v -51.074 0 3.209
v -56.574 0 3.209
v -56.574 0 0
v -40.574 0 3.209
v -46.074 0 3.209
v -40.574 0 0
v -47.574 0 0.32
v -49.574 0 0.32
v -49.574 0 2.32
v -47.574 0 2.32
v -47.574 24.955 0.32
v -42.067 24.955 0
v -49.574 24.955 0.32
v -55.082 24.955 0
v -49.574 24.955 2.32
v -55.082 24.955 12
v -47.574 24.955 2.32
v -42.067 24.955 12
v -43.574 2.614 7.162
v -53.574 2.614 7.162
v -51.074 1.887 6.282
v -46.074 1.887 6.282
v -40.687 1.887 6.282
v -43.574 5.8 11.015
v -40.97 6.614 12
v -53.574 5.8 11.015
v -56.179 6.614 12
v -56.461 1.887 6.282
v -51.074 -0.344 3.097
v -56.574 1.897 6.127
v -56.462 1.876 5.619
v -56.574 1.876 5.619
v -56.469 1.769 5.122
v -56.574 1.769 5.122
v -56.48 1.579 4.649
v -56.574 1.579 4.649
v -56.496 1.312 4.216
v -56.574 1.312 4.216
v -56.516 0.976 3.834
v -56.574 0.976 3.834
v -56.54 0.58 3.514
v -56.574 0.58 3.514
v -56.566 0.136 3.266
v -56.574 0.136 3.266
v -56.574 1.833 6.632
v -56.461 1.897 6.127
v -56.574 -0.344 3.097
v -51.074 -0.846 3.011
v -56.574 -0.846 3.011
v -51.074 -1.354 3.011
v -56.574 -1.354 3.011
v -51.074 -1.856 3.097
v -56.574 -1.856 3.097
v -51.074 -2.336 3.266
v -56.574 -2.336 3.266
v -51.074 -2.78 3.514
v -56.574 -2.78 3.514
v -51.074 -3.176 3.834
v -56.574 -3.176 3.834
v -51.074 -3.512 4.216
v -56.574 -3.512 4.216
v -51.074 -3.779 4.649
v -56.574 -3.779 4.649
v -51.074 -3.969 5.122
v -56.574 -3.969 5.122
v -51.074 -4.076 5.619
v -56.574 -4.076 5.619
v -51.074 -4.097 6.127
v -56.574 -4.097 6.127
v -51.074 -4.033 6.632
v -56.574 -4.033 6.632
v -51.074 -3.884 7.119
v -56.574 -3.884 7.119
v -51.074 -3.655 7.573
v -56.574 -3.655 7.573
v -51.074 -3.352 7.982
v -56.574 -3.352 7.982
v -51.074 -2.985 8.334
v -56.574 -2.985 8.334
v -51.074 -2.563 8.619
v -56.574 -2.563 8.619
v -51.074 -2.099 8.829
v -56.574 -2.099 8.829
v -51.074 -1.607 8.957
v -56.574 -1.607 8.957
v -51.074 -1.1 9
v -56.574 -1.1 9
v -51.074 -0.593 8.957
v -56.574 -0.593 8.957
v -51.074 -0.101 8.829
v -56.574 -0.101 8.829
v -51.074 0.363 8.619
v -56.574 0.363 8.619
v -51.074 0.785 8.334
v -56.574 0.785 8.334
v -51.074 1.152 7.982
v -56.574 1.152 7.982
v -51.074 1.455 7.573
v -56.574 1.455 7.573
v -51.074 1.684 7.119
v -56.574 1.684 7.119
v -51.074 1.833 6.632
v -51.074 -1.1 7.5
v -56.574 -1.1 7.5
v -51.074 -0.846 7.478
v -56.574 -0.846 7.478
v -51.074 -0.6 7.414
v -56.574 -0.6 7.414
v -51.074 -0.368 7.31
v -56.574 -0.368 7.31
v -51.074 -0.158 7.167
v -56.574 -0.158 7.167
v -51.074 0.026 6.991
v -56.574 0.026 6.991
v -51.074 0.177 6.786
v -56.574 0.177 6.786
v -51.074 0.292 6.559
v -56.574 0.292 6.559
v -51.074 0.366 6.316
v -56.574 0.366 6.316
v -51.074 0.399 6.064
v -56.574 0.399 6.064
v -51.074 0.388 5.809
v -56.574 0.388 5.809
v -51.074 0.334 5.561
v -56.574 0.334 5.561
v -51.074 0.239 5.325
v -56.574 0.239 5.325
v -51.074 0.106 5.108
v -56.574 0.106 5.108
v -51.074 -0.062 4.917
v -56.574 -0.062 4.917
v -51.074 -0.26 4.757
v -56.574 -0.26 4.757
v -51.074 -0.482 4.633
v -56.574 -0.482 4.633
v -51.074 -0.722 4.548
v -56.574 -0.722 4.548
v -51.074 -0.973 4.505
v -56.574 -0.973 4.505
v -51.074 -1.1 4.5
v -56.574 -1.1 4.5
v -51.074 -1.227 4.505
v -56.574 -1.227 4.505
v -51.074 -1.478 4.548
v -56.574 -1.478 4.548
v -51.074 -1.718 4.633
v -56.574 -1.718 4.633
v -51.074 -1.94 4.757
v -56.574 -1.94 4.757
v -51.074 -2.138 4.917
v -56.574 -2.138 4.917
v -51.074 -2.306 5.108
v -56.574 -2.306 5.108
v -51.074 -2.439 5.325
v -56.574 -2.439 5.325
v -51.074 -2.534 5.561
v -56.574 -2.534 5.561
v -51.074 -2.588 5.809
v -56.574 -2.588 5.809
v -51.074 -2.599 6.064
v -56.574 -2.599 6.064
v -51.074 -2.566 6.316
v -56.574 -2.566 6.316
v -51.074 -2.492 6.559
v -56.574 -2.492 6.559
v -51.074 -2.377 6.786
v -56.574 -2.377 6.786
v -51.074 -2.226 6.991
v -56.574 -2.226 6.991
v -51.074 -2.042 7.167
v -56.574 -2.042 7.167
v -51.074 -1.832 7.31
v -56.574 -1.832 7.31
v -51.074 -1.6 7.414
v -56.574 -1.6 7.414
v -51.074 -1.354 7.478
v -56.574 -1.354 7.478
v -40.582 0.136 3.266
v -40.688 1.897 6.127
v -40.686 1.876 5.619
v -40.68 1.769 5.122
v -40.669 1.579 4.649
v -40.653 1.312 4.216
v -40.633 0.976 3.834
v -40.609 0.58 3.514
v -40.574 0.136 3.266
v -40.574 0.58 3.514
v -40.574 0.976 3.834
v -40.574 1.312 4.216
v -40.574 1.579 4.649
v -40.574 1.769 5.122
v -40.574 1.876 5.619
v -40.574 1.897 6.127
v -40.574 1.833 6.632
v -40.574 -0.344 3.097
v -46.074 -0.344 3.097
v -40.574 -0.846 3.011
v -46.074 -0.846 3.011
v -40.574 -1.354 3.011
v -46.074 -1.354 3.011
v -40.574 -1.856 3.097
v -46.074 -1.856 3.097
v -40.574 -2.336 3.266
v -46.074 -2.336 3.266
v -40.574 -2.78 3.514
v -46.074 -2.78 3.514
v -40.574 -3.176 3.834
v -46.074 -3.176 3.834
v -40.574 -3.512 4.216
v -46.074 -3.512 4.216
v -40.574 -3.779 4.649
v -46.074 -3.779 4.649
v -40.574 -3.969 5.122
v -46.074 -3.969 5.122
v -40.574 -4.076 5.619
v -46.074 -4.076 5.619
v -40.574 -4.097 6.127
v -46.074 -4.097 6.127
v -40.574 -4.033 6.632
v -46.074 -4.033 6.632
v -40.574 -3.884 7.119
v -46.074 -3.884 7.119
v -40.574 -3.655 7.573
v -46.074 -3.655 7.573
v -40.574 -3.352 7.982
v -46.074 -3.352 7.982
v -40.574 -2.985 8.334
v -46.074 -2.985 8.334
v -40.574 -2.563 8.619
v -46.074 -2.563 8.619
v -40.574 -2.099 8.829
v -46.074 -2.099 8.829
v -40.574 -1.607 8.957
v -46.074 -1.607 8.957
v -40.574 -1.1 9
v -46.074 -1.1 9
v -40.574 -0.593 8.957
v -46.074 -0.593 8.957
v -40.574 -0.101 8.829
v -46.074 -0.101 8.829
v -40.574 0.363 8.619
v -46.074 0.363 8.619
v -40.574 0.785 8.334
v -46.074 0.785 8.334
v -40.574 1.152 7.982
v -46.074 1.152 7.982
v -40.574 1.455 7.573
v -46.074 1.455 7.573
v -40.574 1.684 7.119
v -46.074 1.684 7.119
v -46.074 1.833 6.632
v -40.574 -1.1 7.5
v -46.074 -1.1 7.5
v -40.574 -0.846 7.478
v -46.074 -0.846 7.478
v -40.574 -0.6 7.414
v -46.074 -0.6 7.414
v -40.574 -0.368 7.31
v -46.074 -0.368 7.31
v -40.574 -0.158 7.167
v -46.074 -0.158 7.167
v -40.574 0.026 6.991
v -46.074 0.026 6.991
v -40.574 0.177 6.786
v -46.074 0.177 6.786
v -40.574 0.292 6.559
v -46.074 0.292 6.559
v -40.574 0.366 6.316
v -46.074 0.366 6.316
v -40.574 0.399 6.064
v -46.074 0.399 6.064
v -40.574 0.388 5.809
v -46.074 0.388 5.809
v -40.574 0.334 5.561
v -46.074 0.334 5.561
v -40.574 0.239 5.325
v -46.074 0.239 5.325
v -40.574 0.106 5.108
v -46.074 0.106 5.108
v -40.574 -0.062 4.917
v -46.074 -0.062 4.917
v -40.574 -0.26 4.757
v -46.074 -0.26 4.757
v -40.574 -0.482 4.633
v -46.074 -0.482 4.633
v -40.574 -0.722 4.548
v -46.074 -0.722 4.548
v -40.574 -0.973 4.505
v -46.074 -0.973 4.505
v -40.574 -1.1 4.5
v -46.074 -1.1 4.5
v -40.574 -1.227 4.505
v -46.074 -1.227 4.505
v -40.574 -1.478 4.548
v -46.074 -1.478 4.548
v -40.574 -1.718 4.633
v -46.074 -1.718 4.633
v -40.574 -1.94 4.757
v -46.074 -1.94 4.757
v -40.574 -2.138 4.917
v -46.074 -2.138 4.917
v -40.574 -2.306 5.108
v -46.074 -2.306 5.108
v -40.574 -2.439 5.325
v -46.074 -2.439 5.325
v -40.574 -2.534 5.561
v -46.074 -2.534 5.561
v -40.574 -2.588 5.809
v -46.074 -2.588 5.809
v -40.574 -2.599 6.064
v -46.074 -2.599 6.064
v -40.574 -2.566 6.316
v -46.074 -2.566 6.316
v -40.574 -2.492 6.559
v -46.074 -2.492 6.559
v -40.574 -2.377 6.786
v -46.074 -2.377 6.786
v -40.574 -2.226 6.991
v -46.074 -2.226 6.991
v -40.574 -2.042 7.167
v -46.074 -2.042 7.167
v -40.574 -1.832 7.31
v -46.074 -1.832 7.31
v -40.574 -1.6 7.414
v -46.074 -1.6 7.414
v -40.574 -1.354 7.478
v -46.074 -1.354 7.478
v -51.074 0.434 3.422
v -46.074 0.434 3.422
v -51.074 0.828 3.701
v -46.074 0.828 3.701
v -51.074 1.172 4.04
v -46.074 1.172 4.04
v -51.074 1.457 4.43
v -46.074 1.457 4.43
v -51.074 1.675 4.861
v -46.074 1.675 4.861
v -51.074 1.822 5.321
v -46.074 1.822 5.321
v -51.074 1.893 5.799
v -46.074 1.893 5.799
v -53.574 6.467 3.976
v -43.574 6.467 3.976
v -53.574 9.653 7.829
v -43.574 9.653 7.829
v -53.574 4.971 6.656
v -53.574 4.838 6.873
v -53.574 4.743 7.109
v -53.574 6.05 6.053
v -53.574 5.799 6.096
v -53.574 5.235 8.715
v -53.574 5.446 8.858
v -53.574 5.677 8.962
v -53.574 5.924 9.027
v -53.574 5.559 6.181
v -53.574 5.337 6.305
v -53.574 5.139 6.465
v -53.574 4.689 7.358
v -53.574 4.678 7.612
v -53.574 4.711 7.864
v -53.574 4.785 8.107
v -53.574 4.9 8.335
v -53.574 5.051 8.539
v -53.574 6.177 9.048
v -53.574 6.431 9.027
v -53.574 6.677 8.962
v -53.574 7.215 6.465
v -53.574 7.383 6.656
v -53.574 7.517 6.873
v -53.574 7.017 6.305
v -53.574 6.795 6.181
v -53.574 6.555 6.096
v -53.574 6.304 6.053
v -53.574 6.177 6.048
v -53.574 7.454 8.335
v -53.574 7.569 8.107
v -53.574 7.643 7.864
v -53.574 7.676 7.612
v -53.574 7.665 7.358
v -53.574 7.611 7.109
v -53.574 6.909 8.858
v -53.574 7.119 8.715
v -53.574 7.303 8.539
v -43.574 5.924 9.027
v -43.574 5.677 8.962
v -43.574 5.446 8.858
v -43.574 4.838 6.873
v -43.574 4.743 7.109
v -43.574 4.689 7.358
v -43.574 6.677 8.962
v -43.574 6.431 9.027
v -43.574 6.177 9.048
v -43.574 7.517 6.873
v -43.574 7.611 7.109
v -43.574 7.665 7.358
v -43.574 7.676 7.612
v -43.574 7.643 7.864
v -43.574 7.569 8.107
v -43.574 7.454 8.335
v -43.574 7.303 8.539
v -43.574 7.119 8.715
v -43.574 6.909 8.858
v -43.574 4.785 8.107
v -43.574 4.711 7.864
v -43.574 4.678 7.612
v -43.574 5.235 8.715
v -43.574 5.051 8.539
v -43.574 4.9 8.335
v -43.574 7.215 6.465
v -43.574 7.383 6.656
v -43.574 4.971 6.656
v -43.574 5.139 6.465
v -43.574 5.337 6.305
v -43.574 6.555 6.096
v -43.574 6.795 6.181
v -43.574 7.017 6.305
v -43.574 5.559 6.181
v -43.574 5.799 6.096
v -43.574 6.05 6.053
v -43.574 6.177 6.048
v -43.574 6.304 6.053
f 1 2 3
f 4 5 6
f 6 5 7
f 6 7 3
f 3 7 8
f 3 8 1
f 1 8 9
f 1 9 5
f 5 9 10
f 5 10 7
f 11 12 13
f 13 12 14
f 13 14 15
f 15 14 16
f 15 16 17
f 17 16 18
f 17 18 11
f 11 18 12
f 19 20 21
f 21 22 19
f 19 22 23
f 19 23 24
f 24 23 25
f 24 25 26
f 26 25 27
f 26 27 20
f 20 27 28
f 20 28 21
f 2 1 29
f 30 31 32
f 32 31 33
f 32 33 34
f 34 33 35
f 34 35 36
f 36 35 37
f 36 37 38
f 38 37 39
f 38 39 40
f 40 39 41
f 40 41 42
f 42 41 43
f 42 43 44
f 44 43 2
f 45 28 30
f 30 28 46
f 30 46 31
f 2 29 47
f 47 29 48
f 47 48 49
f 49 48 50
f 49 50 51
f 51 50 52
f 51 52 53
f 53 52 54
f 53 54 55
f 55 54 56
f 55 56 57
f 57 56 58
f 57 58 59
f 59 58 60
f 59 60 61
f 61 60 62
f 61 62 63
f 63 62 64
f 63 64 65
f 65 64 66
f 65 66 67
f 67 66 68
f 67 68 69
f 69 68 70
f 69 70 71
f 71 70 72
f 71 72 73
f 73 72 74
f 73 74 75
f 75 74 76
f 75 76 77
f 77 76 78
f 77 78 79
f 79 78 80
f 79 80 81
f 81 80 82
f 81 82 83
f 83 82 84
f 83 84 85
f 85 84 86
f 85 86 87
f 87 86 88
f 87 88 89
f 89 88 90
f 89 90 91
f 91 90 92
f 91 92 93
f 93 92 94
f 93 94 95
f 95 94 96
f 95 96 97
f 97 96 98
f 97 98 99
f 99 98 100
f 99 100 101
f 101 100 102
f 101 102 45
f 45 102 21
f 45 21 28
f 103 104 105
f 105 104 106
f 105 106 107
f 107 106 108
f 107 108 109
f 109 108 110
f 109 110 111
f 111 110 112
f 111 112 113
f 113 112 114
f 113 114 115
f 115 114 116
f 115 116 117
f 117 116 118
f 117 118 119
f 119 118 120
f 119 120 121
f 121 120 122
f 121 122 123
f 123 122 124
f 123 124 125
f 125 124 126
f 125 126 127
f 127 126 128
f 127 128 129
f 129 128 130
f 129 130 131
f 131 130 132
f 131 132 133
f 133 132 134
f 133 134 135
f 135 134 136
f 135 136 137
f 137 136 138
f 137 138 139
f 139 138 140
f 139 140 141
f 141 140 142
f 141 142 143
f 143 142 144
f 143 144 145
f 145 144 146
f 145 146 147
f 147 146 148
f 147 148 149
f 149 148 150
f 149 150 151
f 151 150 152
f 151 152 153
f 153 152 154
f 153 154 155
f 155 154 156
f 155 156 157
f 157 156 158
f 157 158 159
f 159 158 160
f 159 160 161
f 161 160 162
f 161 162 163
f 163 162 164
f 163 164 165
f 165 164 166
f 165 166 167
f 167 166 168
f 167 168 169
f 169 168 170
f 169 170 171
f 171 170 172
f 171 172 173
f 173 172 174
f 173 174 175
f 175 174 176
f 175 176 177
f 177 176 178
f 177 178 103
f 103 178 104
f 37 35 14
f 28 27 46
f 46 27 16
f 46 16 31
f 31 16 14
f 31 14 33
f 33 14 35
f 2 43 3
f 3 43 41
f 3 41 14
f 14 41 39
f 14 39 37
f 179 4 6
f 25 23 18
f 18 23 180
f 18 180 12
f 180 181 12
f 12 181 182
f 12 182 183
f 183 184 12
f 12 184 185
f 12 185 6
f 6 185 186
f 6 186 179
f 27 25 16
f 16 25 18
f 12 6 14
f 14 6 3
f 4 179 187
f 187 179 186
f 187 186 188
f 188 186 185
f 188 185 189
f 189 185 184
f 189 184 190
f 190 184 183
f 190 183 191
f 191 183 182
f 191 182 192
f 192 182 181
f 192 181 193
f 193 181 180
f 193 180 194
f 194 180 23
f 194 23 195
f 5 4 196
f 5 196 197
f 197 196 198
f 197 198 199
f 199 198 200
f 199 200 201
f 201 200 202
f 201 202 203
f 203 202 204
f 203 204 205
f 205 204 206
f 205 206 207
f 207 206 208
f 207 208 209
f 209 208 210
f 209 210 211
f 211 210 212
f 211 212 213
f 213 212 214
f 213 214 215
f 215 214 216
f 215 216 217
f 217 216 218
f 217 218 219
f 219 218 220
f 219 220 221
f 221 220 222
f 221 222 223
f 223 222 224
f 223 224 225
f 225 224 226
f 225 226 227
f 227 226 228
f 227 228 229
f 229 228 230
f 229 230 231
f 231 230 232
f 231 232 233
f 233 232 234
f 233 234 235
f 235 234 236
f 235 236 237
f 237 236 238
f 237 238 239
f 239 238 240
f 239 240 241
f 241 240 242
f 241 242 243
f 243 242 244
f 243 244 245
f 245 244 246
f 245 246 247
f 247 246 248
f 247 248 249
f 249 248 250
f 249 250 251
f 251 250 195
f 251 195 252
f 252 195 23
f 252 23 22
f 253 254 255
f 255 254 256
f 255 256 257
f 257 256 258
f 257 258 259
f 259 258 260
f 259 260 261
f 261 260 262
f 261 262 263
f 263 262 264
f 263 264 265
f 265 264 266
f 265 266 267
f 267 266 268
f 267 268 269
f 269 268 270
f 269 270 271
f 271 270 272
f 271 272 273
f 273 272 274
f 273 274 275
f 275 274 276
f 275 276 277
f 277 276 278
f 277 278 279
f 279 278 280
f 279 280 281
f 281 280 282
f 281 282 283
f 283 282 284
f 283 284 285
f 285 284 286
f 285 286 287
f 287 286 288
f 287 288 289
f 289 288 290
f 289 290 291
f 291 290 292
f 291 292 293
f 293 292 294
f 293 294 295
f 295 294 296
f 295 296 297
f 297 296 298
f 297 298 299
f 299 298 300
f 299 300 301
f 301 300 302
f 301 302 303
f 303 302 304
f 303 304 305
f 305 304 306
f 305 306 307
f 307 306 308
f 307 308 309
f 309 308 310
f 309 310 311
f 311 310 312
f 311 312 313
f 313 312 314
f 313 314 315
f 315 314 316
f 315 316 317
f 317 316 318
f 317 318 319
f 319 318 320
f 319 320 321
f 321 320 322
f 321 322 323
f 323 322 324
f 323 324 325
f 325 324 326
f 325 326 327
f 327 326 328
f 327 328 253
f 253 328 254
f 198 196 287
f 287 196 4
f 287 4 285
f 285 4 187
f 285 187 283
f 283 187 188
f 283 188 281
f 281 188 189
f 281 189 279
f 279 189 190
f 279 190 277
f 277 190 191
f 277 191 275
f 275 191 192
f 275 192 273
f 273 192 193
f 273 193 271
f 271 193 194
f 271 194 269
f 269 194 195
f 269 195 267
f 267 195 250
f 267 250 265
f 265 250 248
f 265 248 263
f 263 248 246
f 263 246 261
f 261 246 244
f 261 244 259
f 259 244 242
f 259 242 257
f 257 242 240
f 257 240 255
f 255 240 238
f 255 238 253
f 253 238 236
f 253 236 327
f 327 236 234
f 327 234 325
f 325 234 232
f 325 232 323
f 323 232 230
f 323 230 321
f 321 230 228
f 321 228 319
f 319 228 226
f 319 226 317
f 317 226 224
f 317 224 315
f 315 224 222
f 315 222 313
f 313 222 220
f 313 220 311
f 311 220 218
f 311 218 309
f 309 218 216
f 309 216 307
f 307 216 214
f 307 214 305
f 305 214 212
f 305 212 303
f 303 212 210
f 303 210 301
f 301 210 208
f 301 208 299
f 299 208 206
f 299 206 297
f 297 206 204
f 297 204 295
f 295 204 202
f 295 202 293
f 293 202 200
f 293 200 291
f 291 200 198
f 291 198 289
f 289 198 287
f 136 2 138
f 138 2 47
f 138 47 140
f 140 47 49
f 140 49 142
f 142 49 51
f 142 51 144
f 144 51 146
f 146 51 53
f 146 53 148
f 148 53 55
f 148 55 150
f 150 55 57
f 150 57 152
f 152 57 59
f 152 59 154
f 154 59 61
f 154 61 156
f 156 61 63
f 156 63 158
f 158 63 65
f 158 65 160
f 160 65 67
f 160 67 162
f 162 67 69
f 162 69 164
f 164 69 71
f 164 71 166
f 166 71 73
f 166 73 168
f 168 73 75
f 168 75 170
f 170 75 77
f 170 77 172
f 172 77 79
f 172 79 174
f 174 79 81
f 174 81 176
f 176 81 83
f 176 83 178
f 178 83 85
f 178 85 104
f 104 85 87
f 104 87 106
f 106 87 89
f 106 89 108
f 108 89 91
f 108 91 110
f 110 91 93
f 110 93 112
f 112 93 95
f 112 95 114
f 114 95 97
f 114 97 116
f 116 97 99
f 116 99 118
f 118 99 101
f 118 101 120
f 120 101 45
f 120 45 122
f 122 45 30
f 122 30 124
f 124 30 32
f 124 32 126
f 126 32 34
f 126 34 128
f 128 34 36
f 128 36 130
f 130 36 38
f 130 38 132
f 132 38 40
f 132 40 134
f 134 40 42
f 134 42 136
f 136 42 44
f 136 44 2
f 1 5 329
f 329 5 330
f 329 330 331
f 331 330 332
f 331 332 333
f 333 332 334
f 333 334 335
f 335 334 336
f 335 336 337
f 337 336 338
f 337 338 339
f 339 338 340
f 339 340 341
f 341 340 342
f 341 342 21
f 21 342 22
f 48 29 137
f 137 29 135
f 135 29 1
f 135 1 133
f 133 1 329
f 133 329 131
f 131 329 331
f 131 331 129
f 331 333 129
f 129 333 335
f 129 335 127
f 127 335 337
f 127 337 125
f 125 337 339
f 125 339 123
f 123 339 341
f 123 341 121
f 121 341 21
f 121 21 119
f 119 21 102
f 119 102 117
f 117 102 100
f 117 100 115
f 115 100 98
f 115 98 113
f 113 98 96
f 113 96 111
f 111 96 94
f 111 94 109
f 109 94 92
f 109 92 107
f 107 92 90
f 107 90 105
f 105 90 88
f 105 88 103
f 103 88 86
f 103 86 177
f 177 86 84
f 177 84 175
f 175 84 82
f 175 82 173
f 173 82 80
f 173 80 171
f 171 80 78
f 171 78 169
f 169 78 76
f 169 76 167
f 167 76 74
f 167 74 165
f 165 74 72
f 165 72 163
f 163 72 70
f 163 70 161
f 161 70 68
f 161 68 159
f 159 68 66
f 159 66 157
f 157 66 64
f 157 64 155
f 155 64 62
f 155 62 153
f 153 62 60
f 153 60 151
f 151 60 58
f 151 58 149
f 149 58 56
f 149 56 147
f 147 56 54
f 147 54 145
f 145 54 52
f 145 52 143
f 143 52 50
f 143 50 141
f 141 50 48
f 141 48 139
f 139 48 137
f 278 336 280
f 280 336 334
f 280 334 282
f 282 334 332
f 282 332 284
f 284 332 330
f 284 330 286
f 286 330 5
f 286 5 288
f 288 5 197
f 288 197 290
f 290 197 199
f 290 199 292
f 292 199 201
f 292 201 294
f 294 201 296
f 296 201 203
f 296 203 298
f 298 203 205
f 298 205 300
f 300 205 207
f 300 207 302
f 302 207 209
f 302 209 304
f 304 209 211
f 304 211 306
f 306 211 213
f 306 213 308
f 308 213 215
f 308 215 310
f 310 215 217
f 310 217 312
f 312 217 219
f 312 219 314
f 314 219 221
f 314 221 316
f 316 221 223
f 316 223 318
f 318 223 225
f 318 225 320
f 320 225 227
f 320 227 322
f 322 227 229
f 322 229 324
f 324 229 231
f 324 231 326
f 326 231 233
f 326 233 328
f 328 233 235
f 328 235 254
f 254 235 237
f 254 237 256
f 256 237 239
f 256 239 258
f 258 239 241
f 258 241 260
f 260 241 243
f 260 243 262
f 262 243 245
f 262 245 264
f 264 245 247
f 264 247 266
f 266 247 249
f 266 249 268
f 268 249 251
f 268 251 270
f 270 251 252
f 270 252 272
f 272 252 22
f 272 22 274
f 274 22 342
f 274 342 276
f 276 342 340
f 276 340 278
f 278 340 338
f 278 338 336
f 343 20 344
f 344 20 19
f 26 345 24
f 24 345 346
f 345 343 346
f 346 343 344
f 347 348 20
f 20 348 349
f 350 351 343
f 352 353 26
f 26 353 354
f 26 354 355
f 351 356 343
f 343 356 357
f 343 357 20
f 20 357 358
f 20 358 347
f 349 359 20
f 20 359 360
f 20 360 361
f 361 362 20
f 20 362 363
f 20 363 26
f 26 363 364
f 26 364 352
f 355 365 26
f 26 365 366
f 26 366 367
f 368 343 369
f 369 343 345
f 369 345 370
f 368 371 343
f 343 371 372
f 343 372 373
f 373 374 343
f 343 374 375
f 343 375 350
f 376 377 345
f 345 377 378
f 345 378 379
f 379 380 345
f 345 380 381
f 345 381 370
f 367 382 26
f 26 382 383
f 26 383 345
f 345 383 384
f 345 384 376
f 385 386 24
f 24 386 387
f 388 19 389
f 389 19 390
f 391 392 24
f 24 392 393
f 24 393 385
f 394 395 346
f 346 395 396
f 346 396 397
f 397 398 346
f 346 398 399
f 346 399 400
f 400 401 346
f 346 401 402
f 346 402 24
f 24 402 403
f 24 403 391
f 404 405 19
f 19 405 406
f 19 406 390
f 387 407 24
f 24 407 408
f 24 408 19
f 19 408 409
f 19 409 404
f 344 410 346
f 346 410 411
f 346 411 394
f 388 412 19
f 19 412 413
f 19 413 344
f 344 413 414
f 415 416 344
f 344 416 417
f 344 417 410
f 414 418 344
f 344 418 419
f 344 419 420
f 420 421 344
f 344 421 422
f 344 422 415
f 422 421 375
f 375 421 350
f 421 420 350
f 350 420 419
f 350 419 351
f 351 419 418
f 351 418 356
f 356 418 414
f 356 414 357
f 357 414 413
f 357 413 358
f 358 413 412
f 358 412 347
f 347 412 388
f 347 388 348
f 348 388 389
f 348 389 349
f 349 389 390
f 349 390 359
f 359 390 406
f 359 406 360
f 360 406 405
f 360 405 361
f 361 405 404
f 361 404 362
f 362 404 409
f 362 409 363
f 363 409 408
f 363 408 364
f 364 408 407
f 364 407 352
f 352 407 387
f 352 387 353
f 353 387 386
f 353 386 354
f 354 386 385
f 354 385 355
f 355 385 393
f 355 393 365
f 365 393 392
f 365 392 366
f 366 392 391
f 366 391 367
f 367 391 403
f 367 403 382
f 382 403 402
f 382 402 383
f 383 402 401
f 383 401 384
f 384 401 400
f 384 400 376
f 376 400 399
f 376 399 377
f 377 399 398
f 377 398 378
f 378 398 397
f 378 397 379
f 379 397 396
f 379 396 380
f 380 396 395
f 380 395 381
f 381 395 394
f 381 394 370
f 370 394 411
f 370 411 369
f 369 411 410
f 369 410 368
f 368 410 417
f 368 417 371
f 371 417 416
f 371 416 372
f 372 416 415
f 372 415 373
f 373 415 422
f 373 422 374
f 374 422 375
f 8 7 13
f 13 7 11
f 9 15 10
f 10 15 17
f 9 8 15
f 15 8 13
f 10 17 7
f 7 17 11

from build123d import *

# Parameters (mm, degrees)
BOSS_EXTRUDE1_DEPTH     = 12
CUT_EXTRUDE1_DEPTH      = 35.611065794
CUT_EXTRUDE1_DEPTH_BACK = 35.611065794
SKETCH6_R               = 3
SKETCH6_R_2             = 1.5
BOSS_EXTRUDE2_DEPTH     = 8
SKETCH6_3_R             = 3
SKETCH6_3_R_2           = 1.5
CUT_EXTRUDE2_DEPTH      = 2.5
CUT_EXTRUDE3_DEPTH      = 5
SKETCH8_R               = 1.5
BOSS_EXTRUDE3_DEPTH     = 5.5
CUT_EXTRUDE4_DEPTH      = 35.611065794
CUT_EXTRUDE4_DEPTH_BACK = 35.611065794
SKETCH9_W               = 12
SKETCH9_H               = 6.507668331
CUT_EXTRUDE5_DEPTH      = 1


with BuildPart() as part:
    # Sketch1 → Boss-Extrude1 (new body)
    with BuildSketch(Plane.XY):
        with BuildLine():
            Line((-56.5742778, 0), (-40.5742778, 0))
            Line((-40.5742778, 0), (-42.066609469, 24.955419175))
            ThreePointArc((-42.066609469, 24.955419175), (-48.5742778, 31.463087506), (-55.081946131, 24.955419175))
            Line((-55.081946131, 24.955419175), (-56.5742778, 0))
        make_face()
    extrude(amount=BOSS_EXTRUDE1_DEPTH)

    # Sketch3 → Cut-Extrude1 (cut, two sides: drawn at the far end of the back side and taken through both)
    with BuildSketch(Plane(origin=(-48.5742778, 0, 0), x_dir=(0, 0, -1), z_dir=(1, 0, 0)).offset(-CUT_EXTRUDE1_DEPTH_BACK)):
        Polygon((-12, 0), (-4, 0), (-12, 6.613954944), align=None)
    extrude(amount=CUT_EXTRUDE1_DEPTH + CUT_EXTRUDE1_DEPTH_BACK, mode=Mode.SUBTRACT)

    # Sketch6 → Boss-Extrude2 (add, symmetric)
    with BuildSketch(Plane(origin=(-48.5742778, 0, 0), x_dir=(0, 0, -1), z_dir=(1, 0, 0))):
        with Locations((-6, -1.1)):
            Circle(SKETCH6_R)
        with Locations((-6, -1.1)):
            Circle(SKETCH6_R_2, mode=Mode.SUBTRACT)
    extrude(amount=BOSS_EXTRUDE2_DEPTH, both=True)

    # Sketch6<3> → Cut-Extrude2 (cut, symmetric)
    with BuildSketch(Plane(origin=(-48.5742778, 0, 0), x_dir=(0, 0, -1), z_dir=(1, 0, 0))):
        with Locations((-6, -1.1)):
            Circle(SKETCH6_3_R)
        with Locations((-6, -1.1)):
            Circle(SKETCH6_3_R_2, mode=Mode.SUBTRACT)
    extrude(amount=CUT_EXTRUDE2_DEPTH, both=True, mode=Mode.SUBTRACT)

    # Sketch7 → Cut-Extrude3 (cut, symmetric)
    with BuildSketch(Plane(origin=(-48.5742778, 0, 0), x_dir=(0, 0, -1), z_dir=(1, 0, 0))):
        Polygon((-7.161655697, 2.613881041), (-11.015220244, 5.799793827), (-7.829307458, 9.653358374), (-3.975742911, 6.467445588), align=None)
    extrude(amount=CUT_EXTRUDE3_DEPTH, both=True, mode=Mode.SUBTRACT)

    # Sketch8 → Boss-Extrude3 (add, symmetric)
    with BuildSketch(Plane(origin=(-48.5742778, 0, 0), x_dir=(0, 0, -1), z_dir=(1, 0, 0))):
        with Locations((-7.548090256, 6.177113636)):
            Circle(SKETCH8_R)
    extrude(amount=BOSS_EXTRUDE3_DEPTH, both=True)

    # Sketch9 → Cut-Extrude4 (cut, two sides: drawn at the far end of the back side and taken through both)
    with BuildSketch(Plane(origin=(-48.5742778, 0, 0), x_dir=(0, 0, -1), z_dir=(1, 0, 0)).offset(-CUT_EXTRUDE4_DEPTH_BACK)):
        with Locations((-6, 28.209253341)):
            Rectangle(SKETCH9_W, SKETCH9_H)
    extrude(amount=CUT_EXTRUDE4_DEPTH + CUT_EXTRUDE4_DEPTH_BACK, mode=Mode.SUBTRACT)

    # Sketch10 → Cut-Extrude5 (cut, symmetric)
    with BuildSketch(Plane(origin=(-48.5742778, 0, 0), x_dir=(0, 0, -1), z_dir=(1, 0, 0))):
        Polygon((-2.32, 0), (-0.32, 0), (-0.32, 0.801486087), (-0.32, 27.377264347), (-2.32, 27.377264347), (-2.32, 0.801486087), align=None)
    extrude(amount=CUT_EXTRUDE5_DEPTH, both=True, mode=Mode.SUBTRACT)


solid = part.part
